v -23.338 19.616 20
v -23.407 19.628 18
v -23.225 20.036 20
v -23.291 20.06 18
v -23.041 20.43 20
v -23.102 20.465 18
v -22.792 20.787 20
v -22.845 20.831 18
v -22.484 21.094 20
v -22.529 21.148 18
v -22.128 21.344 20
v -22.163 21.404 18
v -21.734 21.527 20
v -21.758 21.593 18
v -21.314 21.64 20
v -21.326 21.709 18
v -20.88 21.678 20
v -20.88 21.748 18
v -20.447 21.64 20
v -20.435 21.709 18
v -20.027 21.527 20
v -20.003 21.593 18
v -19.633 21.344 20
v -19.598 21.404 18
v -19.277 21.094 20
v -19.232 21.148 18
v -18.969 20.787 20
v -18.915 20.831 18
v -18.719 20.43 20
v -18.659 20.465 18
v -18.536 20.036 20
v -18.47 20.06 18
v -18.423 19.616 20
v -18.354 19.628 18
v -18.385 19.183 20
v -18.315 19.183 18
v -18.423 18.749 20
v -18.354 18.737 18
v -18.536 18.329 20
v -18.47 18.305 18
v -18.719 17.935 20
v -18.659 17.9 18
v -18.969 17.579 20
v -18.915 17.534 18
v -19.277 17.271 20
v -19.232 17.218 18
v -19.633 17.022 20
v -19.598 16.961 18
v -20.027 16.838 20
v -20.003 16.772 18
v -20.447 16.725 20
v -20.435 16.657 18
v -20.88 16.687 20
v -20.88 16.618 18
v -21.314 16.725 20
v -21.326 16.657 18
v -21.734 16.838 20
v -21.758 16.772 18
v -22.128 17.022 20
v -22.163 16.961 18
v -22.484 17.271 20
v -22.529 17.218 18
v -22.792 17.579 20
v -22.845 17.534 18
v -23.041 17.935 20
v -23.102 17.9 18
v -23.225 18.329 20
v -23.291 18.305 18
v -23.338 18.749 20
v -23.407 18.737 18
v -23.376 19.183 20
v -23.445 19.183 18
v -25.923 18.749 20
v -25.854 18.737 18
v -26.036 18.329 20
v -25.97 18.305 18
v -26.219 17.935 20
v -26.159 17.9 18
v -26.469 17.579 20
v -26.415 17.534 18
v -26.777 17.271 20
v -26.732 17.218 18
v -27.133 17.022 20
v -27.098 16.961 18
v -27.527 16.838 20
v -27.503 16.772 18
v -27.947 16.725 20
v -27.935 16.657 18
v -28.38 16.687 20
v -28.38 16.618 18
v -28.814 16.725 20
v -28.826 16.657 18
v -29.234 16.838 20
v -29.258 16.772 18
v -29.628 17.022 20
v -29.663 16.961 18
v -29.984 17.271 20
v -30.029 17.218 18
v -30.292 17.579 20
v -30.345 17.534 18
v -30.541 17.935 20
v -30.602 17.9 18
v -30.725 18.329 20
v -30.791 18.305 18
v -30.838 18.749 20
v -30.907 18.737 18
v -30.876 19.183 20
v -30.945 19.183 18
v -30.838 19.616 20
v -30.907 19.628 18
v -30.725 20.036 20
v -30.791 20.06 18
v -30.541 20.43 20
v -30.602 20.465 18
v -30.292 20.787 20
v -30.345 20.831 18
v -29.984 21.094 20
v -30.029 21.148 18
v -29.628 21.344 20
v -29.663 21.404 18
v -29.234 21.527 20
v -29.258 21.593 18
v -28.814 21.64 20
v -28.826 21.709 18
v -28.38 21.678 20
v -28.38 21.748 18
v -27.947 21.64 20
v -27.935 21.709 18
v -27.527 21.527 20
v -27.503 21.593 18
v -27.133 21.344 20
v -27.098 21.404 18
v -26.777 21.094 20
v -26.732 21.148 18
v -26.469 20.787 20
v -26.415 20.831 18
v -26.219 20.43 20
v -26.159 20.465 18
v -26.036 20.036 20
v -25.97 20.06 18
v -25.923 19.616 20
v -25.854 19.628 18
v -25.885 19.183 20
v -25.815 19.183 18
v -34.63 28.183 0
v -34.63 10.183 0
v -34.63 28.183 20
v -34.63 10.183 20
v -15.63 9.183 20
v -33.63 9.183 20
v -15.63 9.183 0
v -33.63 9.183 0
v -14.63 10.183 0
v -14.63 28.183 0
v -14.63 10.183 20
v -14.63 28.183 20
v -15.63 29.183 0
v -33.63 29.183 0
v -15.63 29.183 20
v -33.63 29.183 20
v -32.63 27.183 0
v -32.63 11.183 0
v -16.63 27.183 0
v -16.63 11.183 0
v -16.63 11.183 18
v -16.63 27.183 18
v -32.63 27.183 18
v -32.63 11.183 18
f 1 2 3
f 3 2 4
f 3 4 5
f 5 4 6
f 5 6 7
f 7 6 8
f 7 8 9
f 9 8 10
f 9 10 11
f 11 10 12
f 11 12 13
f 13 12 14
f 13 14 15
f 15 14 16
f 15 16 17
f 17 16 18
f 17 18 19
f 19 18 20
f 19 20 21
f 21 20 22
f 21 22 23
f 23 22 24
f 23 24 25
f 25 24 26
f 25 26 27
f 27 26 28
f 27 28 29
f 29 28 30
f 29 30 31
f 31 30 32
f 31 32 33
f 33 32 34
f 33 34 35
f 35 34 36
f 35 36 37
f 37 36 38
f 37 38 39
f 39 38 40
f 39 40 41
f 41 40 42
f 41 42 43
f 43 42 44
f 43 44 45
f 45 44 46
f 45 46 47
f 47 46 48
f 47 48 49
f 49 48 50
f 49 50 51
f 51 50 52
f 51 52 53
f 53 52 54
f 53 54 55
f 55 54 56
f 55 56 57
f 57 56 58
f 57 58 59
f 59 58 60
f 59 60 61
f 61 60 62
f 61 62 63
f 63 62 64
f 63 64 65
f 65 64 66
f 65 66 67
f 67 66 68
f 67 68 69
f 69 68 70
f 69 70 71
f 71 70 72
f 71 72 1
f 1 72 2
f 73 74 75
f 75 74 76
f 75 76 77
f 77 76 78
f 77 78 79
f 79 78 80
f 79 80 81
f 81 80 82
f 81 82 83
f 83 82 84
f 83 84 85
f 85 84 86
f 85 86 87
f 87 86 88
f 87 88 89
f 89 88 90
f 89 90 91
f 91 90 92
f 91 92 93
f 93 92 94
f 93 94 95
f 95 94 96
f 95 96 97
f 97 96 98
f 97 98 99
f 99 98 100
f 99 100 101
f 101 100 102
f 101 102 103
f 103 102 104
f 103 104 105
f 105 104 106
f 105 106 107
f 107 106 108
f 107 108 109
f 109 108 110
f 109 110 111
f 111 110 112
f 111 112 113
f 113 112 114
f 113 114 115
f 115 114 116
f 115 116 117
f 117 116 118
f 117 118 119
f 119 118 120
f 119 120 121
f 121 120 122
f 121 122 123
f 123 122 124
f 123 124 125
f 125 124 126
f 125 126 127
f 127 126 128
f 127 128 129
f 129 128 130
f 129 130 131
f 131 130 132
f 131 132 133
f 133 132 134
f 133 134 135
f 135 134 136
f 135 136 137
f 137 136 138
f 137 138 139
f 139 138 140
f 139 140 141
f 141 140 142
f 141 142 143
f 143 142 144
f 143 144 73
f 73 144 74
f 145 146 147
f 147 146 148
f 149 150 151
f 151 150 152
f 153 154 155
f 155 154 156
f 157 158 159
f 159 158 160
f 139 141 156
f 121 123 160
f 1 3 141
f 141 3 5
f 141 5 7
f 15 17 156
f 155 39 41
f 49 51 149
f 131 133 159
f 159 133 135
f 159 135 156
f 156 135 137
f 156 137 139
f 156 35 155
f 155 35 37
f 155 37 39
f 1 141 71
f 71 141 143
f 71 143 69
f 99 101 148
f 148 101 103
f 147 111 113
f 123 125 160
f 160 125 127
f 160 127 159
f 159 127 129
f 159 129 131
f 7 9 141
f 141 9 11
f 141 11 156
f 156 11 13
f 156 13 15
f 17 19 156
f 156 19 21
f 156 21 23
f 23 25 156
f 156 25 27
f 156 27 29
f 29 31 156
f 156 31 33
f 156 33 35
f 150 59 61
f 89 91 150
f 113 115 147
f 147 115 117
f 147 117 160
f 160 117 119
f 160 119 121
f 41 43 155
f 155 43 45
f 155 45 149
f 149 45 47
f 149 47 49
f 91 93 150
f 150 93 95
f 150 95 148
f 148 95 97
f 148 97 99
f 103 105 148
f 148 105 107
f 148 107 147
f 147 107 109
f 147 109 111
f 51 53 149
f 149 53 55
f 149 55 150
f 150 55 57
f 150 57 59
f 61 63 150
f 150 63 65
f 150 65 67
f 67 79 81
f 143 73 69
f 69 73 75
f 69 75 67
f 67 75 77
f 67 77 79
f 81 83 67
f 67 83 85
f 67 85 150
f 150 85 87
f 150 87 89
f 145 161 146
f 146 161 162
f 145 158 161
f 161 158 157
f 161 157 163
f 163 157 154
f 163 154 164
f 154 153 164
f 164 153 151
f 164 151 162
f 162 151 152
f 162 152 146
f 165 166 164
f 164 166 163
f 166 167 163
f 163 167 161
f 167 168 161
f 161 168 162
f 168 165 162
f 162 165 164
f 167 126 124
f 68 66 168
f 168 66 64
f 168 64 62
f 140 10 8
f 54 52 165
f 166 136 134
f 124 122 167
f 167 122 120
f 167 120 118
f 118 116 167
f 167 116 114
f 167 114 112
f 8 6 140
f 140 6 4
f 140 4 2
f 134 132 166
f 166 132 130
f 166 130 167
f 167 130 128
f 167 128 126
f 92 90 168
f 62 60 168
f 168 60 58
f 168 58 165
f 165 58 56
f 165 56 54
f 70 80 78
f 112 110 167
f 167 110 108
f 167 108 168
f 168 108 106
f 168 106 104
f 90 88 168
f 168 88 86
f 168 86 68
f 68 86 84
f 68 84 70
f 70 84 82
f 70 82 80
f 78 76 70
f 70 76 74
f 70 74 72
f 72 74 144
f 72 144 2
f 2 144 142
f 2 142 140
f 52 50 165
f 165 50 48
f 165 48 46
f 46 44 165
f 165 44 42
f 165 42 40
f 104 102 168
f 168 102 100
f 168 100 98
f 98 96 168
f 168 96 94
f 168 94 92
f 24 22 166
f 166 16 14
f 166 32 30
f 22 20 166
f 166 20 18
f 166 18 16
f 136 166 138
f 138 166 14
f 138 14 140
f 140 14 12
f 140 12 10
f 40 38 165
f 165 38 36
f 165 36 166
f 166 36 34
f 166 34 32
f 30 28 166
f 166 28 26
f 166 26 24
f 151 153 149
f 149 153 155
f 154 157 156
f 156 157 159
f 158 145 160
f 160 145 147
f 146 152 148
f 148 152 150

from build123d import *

# Parameters (mm, degrees)
ESQUISSE1_W                       = 20
ESQUISSE1_H                       = 20
BOSS_EXTRU_1_DEPTH                = 20
ENL_V_START                       = -3
ESQUISSE2_R                       = 2.6
ENL_V_MAT_EXTRU_1_DEPTH           = 53.506491459
ENL_V_MAT_EXTRU_1_DRAFT           = 2
ENL_V_MAT_EXTRU_1_PROFILE_2_DEPTH = 53.506491459
ENL_V_MAT_EXTRU_1_PROFILE_2_DRAFT = 2
ESQUISSE3_W                       = 16
ESQUISSE3_H                       = 16
ENL_V_MAT_EXTRU_2_DEPTH           = 18
CHANFREIN1_SIZE                   = 1


with BuildPart() as part:
    # Esquisse1 → Boss.-Extru.1 (new body)
    with BuildSketch(Plane.XY):
        with Locations((-24.630410255, 19.182655502)):
            Rectangle(ESQUISSE1_W, ESQUISSE1_H)
    extrude(amount=BOSS_EXTRU_1_DEPTH)


with BuildPart() as enl_v_mat_extru_1_tool:
    # Esquisse2 → Enlèv. mat.-Extru.1 (with draft: the straight prism first)
    with BuildSketch(Plane.XY.offset(20).offset(ENL_V_START)):
        with Locations((-28.380410255, 19.182655502)):
            Circle(ESQUISSE2_R)
    extrude(amount=ENL_V_MAT_EXTRU_1_DEPTH)
    # Enlèv. mat.-Extru.1: the draft: its side faces are tilted about the plane it starts from
    enl_v_mat_extru_1_sides = [enl_v_mat_extru_1_tool.faces().sort_by_distance(p)[0] for p in [
        (-30.980410255, 19.182655502, 43.75324573),
    ]]
    draft(enl_v_mat_extru_1_sides, Plane.XY.offset(20).offset(ENL_V_START), ENL_V_MAT_EXTRU_1_DRAFT)


with BuildPart() as part_1:
    add(part.part)

    # Enlèv. mat.-Extru.1: cut by enl_v_mat_extru_1_tool
    add(enl_v_mat_extru_1_tool.part, mode=Mode.SUBTRACT)


with BuildPart() as enl_v_mat_extru_1_profile_2_tool:
    # Esquisse2 → Enlèv. mat.-Extru.1 profile 2 (with draft: the straight prism first)
    with BuildSketch(Plane.XY.offset(20).offset(ENL_V_START)):
        with Locations((-20.880410255, 19.182655502)):
            Circle(ESQUISSE2_R)
    extrude(amount=ENL_V_MAT_EXTRU_1_PROFILE_2_DEPTH)
    # Enlèv. mat.-Extru.1 profile 2: the draft: its side faces are tilted about the plane it starts from
    enl_v_mat_extru_1_profile_2_sides = [enl_v_mat_extru_1_profile_2_tool.faces().sort_by_distance(p)[0] for p in [
        (-23.480410255, 19.182655502, 43.75324573),
    ]]
    draft(enl_v_mat_extru_1_profile_2_sides, Plane.XY.offset(20).offset(ENL_V_START), ENL_V_MAT_EXTRU_1_PROFILE_2_DRAFT)


with BuildPart() as part_2:
    add(part_1.part)

    # Enlèv. mat.-Extru.1 profile 2: cut by enl_v_mat_extru_1_profile_2_tool
    add(enl_v_mat_extru_1_profile_2_tool.part, mode=Mode.SUBTRACT)

    # Esquisse3 → Enlèv. mat.-Extru.2 (cut)
    with BuildSketch(Plane(origin=(0, 0, 0), x_dir=(-1, 0, 0), z_dir=(0, 0, -1))):
        with Locations((24.630410255, 19.182655502)):
            Rectangle(ESQUISSE3_W, ESQUISSE3_H)
    extrude(amount=-ENL_V_MAT_EXTRU_2_DEPTH, mode=Mode.SUBTRACT)

    # Chanfrein1
    chanfrein1_edges = [part_2.edges().sort_by_distance(p)[0] for p in [
        (-34.630410255, 29.182655502, 10),
        (-14.630410255, 29.182655502, 10),
        (-14.630410255, 9.182655502, 10),
        (-34.630410255, 9.182655502, 10),
    ]]
    chamfer(chanfrein1_edges, length=CHANFREIN1_SIZE)


solid = part_2.part
